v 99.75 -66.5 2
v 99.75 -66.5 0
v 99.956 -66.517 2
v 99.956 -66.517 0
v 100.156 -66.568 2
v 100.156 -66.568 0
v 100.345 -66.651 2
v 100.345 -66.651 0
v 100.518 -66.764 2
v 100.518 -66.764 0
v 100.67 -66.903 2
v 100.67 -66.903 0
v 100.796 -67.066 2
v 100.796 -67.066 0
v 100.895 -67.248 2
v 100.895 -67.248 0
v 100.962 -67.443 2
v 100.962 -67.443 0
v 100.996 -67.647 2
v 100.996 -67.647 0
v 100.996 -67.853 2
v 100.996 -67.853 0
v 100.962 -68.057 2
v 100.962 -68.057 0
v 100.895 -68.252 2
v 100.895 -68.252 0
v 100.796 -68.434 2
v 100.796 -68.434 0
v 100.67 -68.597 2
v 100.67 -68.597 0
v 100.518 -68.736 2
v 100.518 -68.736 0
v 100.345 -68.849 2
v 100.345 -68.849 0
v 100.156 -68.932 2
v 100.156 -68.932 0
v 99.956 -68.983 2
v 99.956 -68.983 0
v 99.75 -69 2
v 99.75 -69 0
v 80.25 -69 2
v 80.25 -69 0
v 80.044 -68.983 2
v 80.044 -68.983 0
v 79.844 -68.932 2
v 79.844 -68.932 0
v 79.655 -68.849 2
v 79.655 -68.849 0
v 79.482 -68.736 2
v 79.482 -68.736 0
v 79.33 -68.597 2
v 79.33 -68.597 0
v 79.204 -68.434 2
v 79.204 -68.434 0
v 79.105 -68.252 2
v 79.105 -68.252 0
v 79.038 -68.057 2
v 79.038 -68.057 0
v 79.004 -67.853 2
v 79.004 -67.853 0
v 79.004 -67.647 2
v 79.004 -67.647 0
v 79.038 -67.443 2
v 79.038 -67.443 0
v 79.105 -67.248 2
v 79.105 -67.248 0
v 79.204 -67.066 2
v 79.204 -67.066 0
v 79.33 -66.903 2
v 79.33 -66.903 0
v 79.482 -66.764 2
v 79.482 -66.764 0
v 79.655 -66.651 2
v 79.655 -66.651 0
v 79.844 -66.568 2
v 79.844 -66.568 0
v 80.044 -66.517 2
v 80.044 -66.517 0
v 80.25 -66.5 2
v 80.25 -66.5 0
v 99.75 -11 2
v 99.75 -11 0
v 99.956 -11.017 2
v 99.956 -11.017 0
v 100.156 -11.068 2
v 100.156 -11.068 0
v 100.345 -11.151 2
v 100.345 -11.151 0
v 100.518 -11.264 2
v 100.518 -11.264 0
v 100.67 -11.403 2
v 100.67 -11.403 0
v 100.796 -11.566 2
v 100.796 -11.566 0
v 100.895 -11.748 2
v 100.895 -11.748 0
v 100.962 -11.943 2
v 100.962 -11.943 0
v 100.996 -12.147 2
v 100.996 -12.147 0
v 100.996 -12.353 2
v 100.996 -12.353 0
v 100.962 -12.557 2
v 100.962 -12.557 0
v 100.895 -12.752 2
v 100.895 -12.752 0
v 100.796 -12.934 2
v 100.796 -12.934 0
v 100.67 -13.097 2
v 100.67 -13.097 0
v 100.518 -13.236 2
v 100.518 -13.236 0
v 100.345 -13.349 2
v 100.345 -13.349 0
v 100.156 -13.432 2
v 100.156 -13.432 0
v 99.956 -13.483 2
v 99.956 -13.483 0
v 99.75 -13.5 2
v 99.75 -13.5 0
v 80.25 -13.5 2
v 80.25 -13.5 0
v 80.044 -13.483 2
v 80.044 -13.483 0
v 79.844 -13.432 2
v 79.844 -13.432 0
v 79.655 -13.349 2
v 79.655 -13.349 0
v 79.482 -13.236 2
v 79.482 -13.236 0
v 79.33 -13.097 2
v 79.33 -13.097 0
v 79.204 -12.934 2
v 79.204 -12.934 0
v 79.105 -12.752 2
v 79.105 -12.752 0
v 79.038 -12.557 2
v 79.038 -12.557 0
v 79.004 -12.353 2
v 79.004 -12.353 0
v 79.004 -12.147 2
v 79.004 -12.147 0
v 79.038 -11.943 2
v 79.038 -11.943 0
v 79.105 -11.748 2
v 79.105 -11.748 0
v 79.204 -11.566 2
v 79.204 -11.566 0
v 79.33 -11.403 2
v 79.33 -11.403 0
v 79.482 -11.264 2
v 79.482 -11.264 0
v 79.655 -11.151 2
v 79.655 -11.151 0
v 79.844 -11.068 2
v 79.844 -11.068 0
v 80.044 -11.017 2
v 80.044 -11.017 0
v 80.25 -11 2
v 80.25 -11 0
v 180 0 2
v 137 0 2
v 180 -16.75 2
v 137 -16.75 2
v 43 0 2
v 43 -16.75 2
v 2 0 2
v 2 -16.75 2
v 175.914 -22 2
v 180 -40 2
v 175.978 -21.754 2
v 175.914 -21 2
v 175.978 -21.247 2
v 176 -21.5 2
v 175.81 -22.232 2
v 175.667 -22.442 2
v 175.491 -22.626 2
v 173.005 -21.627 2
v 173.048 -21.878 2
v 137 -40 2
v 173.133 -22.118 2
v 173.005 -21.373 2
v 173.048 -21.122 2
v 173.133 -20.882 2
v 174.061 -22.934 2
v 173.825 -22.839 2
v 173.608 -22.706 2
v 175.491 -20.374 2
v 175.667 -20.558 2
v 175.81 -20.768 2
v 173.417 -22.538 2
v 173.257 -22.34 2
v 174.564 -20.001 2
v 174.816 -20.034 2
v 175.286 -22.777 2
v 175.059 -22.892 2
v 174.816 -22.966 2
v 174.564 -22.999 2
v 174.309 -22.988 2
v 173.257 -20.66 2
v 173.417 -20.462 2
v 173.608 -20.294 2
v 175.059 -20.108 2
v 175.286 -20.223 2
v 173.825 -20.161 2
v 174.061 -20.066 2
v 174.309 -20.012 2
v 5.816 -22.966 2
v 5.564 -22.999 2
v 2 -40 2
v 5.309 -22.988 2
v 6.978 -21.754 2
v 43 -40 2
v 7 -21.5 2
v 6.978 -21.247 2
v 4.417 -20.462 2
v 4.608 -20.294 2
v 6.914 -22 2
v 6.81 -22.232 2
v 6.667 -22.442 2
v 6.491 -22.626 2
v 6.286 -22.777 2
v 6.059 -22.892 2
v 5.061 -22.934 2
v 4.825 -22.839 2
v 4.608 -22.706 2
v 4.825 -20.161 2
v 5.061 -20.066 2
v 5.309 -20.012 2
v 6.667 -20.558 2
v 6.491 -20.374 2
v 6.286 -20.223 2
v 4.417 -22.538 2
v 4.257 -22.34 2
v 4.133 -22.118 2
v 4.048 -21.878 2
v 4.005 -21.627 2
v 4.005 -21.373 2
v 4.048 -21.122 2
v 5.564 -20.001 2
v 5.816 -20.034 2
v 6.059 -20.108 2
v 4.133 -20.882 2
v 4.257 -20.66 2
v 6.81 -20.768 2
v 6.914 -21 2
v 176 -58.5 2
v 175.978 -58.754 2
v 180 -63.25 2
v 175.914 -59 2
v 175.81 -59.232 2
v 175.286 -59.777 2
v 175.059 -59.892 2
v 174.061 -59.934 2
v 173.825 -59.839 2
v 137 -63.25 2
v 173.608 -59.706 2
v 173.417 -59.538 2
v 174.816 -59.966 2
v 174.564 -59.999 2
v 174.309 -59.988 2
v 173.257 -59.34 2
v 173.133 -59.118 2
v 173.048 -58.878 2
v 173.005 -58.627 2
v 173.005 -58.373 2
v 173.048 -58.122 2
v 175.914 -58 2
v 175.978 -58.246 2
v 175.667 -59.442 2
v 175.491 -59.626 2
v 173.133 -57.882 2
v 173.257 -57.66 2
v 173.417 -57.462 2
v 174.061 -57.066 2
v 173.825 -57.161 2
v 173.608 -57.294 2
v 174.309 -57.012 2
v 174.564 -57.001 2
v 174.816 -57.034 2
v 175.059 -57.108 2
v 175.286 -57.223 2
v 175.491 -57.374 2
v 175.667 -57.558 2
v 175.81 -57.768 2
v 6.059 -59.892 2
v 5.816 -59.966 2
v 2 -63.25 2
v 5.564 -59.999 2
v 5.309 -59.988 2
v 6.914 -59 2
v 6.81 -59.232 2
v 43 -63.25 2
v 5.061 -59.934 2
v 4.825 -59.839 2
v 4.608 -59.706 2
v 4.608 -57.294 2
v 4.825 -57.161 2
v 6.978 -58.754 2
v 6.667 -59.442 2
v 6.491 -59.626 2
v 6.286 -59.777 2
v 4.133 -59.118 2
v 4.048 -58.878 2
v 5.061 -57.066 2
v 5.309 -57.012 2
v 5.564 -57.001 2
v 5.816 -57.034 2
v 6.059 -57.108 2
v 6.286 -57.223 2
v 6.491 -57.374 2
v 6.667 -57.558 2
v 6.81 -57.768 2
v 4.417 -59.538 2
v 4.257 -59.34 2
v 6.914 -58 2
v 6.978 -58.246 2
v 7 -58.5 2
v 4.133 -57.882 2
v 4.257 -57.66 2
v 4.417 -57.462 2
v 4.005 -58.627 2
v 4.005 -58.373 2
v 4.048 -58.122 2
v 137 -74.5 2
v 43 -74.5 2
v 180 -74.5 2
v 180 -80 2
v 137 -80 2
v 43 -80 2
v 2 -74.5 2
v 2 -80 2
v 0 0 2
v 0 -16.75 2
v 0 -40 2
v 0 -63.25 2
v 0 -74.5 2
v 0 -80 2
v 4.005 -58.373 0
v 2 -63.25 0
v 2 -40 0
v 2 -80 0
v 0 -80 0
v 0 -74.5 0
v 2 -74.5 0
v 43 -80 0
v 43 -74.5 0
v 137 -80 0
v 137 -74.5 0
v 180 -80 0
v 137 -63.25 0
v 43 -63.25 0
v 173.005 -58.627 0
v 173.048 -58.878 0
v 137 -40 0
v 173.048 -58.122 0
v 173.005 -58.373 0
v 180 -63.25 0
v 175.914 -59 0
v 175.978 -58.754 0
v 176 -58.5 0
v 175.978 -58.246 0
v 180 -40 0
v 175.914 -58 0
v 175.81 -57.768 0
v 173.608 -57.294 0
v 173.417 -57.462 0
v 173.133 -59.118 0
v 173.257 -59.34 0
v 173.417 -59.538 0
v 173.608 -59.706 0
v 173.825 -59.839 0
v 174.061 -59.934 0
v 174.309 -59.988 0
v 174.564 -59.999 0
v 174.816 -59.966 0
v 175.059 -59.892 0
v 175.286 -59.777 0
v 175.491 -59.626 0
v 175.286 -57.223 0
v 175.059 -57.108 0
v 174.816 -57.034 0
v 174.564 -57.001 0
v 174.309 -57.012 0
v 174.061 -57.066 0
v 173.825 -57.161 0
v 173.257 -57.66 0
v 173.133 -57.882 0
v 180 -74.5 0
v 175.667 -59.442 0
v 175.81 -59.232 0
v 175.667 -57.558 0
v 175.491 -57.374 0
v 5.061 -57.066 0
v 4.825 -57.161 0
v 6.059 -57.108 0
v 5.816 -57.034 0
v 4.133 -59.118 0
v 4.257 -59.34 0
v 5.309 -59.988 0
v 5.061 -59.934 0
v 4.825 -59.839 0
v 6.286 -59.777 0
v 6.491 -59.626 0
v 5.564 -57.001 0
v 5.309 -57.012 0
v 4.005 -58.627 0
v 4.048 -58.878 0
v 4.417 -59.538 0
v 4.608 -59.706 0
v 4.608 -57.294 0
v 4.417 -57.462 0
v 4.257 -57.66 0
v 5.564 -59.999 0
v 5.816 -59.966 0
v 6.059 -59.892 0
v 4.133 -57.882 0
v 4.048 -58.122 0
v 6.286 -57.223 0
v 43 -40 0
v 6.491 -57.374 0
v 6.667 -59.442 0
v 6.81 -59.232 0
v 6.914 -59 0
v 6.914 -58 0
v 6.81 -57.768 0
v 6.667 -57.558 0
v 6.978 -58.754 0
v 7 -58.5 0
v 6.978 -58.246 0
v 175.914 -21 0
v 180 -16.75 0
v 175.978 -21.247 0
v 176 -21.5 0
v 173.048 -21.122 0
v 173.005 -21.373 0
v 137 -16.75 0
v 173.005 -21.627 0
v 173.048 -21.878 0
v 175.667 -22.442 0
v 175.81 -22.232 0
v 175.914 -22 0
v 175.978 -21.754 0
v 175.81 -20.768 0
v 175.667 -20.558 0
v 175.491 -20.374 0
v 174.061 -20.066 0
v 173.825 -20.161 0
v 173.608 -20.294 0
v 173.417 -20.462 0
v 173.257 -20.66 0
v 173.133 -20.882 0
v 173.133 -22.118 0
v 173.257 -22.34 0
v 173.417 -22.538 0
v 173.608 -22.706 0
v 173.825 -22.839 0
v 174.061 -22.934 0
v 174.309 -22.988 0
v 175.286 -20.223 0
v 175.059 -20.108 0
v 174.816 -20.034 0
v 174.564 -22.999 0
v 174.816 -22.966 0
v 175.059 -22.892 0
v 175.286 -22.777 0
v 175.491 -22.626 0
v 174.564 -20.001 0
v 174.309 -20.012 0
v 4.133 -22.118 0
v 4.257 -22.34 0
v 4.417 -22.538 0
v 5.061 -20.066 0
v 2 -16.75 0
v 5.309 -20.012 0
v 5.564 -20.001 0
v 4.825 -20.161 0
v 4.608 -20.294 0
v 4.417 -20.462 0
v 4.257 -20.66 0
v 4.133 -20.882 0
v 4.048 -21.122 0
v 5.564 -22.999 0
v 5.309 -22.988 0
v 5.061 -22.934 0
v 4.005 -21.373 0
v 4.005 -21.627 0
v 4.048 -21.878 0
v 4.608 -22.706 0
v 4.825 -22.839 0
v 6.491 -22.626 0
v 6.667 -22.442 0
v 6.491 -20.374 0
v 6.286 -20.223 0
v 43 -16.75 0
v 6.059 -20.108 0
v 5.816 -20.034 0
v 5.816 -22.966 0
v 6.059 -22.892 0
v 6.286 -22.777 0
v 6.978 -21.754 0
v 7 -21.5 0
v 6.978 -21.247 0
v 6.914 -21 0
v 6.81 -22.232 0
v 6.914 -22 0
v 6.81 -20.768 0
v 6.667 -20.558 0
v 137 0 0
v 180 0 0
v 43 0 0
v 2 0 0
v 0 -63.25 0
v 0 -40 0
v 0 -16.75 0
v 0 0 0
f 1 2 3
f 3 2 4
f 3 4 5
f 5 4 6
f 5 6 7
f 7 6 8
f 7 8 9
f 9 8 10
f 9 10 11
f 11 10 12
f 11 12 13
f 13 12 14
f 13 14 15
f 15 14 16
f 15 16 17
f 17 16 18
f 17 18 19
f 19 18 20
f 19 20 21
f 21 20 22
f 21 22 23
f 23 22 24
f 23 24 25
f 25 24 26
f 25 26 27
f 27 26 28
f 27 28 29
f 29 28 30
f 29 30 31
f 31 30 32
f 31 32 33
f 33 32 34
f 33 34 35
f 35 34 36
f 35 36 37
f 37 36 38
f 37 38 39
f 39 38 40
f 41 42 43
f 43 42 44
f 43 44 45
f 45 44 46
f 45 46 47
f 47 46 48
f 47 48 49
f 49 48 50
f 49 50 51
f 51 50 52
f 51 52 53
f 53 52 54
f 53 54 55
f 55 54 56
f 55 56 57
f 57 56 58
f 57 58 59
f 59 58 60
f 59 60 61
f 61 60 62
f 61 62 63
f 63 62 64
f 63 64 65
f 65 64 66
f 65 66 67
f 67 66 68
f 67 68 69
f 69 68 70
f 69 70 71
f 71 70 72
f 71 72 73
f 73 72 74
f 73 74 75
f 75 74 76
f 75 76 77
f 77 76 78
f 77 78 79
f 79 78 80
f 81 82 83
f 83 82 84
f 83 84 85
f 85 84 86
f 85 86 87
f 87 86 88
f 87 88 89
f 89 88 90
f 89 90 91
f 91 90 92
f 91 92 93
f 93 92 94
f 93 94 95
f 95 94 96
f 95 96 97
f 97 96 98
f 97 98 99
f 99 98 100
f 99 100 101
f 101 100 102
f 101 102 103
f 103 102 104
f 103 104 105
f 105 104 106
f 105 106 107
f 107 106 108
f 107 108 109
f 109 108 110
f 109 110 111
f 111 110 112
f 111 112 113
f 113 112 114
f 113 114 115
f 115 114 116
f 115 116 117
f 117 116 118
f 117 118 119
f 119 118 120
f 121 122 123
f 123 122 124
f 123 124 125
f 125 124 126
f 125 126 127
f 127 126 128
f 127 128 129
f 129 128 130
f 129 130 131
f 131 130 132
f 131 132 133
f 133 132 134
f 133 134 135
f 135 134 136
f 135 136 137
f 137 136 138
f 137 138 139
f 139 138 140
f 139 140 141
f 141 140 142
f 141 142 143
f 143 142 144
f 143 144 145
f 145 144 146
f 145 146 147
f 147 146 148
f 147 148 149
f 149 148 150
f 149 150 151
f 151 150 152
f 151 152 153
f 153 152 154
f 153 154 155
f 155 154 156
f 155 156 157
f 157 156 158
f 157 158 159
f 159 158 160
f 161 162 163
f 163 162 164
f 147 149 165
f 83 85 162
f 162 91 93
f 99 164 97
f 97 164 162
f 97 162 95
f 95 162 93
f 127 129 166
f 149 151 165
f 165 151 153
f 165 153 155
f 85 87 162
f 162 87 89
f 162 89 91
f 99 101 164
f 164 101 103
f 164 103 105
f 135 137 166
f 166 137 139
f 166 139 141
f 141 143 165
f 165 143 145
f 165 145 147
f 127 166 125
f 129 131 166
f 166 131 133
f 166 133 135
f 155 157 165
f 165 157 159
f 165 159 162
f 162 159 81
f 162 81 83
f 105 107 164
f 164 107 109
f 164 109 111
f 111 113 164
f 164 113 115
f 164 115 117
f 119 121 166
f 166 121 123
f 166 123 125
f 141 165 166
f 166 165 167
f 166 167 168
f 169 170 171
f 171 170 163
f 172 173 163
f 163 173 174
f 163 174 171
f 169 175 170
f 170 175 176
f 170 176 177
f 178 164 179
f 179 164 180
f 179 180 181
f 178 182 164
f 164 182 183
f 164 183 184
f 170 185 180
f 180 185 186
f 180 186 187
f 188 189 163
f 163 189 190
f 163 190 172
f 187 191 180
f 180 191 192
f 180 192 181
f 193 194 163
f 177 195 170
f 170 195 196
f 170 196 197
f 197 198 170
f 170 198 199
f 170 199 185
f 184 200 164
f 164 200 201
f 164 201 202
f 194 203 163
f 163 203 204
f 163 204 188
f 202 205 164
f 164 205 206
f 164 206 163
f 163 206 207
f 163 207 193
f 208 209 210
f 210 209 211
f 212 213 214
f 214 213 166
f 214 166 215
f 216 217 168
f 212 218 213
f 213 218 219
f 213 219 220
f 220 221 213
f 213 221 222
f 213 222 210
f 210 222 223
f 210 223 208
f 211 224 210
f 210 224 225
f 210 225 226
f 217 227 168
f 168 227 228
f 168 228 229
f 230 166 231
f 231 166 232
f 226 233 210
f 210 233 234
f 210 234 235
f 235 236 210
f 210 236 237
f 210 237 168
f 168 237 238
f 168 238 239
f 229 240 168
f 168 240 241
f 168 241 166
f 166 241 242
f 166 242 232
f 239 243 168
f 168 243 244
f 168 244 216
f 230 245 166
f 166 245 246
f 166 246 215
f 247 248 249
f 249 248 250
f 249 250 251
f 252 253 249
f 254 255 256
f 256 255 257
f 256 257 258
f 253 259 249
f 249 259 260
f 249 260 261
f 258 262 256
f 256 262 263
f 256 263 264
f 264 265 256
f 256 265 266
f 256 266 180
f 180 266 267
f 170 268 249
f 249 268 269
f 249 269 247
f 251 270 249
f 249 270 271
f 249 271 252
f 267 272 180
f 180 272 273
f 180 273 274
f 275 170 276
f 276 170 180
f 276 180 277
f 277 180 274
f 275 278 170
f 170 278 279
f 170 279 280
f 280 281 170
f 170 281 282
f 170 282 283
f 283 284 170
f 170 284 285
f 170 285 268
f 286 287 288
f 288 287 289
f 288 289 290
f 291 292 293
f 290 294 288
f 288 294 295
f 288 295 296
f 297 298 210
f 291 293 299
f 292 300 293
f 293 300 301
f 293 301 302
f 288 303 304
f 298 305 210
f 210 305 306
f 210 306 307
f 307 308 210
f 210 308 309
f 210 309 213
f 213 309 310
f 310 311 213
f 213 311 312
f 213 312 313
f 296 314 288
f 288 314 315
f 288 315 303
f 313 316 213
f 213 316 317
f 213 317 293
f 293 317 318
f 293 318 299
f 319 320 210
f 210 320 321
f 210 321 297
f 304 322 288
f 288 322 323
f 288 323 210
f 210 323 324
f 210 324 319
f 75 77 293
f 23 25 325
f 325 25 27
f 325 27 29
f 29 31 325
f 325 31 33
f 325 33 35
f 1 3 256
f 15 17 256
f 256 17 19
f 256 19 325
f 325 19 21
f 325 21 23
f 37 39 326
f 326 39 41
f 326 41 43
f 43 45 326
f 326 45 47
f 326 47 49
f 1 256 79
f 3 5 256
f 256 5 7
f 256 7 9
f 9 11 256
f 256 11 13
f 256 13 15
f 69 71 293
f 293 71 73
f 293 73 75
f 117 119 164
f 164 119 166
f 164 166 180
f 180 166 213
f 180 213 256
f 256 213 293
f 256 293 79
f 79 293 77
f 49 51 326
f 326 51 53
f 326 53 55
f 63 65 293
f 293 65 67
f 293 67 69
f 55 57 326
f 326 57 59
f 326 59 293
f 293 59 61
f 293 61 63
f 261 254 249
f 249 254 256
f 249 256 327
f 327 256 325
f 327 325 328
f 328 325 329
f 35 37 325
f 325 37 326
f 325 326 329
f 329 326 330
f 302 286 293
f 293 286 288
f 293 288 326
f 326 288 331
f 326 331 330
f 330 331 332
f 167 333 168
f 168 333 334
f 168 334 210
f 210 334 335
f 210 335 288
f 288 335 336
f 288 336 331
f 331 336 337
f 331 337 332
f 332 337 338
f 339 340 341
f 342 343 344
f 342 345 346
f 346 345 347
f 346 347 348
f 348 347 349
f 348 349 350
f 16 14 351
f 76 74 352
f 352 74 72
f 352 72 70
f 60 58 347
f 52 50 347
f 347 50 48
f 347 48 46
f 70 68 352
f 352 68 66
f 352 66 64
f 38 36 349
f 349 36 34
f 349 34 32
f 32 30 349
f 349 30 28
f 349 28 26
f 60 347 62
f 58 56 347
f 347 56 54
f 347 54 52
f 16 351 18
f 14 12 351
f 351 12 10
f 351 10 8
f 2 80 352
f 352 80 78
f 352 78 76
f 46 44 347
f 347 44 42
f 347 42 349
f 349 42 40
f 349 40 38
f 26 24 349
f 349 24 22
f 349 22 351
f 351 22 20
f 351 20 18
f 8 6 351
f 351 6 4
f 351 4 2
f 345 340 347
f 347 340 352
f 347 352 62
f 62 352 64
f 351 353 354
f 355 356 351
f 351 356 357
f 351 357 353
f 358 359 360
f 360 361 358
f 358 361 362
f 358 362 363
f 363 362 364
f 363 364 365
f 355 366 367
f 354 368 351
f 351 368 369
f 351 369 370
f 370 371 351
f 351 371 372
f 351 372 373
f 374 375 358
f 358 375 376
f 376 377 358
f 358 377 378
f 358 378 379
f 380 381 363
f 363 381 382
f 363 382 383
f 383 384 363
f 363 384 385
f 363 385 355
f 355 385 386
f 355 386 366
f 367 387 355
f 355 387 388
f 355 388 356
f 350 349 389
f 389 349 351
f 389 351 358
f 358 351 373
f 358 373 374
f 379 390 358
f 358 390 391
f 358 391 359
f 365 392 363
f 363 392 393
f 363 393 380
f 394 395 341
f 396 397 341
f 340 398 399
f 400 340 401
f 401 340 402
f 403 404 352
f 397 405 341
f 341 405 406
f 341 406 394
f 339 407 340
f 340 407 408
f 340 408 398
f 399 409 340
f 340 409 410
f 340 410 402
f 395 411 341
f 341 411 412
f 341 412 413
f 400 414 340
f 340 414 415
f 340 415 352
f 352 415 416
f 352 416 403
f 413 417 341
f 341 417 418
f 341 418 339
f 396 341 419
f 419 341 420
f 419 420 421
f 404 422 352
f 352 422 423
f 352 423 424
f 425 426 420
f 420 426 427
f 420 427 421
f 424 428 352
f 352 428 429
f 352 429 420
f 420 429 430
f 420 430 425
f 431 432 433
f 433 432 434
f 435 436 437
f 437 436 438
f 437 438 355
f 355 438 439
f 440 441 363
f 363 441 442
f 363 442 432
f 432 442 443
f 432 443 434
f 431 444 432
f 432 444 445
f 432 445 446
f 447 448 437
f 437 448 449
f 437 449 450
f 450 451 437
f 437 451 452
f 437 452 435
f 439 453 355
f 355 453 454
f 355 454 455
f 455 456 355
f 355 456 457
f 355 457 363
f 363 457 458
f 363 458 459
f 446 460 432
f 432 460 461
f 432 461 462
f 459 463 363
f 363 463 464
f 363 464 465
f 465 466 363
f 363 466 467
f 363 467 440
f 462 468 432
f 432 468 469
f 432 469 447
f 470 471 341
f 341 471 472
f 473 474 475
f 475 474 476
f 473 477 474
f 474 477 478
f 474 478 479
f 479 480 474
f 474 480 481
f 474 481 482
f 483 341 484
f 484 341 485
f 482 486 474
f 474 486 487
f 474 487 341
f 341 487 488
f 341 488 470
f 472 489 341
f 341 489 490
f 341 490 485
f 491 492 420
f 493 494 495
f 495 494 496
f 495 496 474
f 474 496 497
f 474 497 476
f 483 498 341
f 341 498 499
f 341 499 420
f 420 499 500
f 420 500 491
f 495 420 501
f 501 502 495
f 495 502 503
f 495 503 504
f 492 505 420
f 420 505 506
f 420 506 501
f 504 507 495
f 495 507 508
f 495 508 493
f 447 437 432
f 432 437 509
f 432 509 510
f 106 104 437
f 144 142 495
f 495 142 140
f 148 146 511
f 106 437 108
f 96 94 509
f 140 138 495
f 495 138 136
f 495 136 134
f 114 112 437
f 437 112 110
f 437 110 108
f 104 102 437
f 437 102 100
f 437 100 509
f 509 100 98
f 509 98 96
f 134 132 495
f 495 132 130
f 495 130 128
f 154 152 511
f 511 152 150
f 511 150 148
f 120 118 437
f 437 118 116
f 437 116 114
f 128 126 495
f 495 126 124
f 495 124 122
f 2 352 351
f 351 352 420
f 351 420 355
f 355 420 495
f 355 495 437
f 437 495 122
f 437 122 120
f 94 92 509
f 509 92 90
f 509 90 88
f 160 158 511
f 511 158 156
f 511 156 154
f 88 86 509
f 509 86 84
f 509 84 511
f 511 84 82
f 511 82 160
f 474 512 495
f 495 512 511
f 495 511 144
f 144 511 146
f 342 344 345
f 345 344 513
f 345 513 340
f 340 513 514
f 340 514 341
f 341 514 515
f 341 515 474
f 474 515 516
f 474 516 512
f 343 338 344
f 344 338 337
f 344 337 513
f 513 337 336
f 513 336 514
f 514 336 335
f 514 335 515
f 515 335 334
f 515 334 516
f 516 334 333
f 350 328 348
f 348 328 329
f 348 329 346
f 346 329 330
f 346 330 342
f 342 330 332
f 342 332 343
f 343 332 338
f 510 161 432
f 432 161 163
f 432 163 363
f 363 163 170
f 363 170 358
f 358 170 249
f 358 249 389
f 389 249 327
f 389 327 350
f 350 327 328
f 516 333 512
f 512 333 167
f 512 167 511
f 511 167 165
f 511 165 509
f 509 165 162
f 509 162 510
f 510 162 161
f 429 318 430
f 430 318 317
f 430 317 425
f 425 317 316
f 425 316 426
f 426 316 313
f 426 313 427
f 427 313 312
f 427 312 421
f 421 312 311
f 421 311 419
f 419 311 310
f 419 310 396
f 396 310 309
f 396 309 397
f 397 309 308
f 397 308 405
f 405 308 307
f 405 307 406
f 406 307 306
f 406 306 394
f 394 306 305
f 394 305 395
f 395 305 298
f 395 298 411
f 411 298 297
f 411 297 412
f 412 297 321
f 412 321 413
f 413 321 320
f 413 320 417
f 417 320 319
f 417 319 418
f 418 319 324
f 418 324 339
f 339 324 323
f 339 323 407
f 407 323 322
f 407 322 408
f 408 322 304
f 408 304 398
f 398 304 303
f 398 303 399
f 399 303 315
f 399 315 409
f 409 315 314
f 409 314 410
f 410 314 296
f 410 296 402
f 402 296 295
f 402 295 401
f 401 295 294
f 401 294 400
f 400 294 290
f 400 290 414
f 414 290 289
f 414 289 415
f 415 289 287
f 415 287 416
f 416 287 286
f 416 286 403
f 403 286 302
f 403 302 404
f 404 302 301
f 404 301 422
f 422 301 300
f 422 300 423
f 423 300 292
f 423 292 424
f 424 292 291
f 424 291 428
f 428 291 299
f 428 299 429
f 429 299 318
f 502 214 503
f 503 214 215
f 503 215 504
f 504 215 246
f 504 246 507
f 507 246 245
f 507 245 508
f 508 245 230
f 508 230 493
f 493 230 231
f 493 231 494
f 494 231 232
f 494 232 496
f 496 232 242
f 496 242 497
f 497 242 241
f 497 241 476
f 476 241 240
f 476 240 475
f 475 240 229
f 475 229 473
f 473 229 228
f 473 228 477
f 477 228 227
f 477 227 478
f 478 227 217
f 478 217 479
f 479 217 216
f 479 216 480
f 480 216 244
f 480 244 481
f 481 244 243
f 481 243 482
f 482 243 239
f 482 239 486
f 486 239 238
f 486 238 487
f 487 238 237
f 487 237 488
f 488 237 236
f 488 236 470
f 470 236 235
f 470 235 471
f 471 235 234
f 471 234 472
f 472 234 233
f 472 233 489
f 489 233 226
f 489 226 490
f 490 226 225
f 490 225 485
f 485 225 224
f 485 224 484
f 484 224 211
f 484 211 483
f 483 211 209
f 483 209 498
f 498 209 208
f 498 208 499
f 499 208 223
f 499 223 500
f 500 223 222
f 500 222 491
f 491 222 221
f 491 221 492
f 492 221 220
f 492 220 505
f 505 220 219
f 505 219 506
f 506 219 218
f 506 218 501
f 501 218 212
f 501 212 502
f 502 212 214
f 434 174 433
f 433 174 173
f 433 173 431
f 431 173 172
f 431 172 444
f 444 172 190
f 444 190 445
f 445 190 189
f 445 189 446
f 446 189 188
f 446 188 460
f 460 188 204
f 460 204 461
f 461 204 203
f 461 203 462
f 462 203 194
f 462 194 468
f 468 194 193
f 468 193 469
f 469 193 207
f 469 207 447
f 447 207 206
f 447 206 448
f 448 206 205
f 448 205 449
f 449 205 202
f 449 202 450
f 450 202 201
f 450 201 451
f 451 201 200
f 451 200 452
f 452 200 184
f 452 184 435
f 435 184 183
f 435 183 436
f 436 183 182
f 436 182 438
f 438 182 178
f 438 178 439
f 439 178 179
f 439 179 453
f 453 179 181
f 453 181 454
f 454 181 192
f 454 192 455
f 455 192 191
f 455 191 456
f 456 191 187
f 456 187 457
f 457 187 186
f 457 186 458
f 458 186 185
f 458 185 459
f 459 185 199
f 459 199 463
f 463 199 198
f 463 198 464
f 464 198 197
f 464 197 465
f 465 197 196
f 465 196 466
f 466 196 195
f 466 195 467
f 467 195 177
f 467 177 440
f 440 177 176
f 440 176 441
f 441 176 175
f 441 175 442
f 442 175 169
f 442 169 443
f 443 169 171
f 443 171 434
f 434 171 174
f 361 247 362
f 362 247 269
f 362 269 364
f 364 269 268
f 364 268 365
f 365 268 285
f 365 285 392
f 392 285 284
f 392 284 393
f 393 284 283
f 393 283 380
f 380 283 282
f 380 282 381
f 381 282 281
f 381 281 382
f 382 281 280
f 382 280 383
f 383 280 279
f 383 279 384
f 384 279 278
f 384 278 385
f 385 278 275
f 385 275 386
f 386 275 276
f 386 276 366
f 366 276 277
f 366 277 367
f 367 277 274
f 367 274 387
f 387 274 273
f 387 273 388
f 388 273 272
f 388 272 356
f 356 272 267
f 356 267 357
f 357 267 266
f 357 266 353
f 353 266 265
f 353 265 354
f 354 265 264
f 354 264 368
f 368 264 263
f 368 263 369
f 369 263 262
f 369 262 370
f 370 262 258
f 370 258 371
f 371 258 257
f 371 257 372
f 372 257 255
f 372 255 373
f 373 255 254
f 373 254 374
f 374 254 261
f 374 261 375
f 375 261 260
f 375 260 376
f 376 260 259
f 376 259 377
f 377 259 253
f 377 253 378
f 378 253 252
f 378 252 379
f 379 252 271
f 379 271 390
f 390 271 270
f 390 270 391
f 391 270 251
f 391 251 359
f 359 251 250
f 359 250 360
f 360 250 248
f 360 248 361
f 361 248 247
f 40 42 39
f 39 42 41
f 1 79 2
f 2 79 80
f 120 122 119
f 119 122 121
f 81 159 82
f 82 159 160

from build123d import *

# Parameters (mm, degrees)
ESBO_O1_W                = 180
ESBO_O1_H                = 80
RESSALTO_EXTRUS_O1_DEPTH = 2
ESBO_O2_R                = 1.5
CORTE_EXTRUS_O1_DEPTH    = 2
ESBO_O3_W                = 22
ESBO_O3_H                = 2.5
CORTE_EXTRUS_O2_DEPTH    = 2
FILETE4_R                = 1.25
FILETE5_R                = 1.25
FILETE6_R                = 1.25
FILETE7_R                = 1.25


with BuildPart() as part:
    # Esboço1 → Ressalto-extrusão1 (new body)
    with BuildSketch(Plane.XY):
        with Locations((90, -40)):
            Rectangle(ESBO_O1_W, ESBO_O1_H)
    extrude(amount=RESSALTO_EXTRUS_O1_DEPTH)

    # Esboço2 → Corte-extrusão1 (cut)
    with BuildSketch(Plane.XY.offset(2)):
        with Locations((5.5, -58.5)):
            Circle(ESBO_O2_R)
        with Locations((5.5, -21.5)):
            Circle(ESBO_O2_R)
        with Locations((174.5, -21.5)):
            Circle(ESBO_O2_R)
        with Locations((174.5, -58.5)):
            Circle(ESBO_O2_R)
    extrude(amount=-CORTE_EXTRUS_O1_DEPTH, mode=Mode.SUBTRACT)

    # Esboço3 → Corte-extrusão2 (cut)
    with BuildSketch(Plane.XY):
        with Locations((90, -12.25)):
            Rectangle(ESBO_O3_W, ESBO_O3_H)
        with Locations((90, -67.75)):
            Rectangle(ESBO_O3_W, ESBO_O3_H)
    extrude(amount=CORTE_EXTRUS_O2_DEPTH, mode=Mode.SUBTRACT)

    # Filete4
    filete4_edges = [part.edges().sort_by_distance(p)[0] for p in [
        (79, -11, 1),
        (79, -13.5, 1),
    ]]
    fillet(filete4_edges, radius=FILETE4_R - 0.0001)  # a hair under: the kernel refuses the full size

    # Filete5
    filete5_edges = [part.edges().sort_by_distance(p)[0] for p in [
        (101, -13.5, 1),
        (101, -11, 1),
    ]]
    fillet(filete5_edges, radius=FILETE5_R - 0.0001)  # a hair under: the kernel refuses the full size

    # Filete6
    filete6_edges = [part.edges().sort_by_distance(p)[0] for p in [
        (79, -66.5, 1),
        (79, -69, 1),
    ]]
    fillet(filete6_edges, radius=FILETE6_R - 0.0001)  # a hair under: the kernel refuses the full size

    # Filete7
    filete7_edges = [part.edges().sort_by_distance(p)[0] for p in [
        (101, -69, 1),
        (101, -66.5, 1),
    ]]
    fillet(filete7_edges, radius=FILETE7_R - 0.0001)  # a hair under: the kernel refuses the full size


solid = part.part
